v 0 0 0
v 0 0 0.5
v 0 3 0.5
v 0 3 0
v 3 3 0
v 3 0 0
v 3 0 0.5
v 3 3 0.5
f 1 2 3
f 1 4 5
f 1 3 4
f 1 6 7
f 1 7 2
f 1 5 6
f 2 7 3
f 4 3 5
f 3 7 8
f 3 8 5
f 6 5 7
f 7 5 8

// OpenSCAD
/* Warning, this is a very basic generator with a lot of approximation 
input data : [XQFN, RCX, 3x3x0.5mm, 16, , A, C04-00217A]
generated by com.zoubworld.electronics.cad.model3d.Basic
Date : Sun Feb 15 10:50:48 CET 2026
*/

//body
color("black")
translate([0,0,0])
cube([3.0,3.0,0.5], center=false);
